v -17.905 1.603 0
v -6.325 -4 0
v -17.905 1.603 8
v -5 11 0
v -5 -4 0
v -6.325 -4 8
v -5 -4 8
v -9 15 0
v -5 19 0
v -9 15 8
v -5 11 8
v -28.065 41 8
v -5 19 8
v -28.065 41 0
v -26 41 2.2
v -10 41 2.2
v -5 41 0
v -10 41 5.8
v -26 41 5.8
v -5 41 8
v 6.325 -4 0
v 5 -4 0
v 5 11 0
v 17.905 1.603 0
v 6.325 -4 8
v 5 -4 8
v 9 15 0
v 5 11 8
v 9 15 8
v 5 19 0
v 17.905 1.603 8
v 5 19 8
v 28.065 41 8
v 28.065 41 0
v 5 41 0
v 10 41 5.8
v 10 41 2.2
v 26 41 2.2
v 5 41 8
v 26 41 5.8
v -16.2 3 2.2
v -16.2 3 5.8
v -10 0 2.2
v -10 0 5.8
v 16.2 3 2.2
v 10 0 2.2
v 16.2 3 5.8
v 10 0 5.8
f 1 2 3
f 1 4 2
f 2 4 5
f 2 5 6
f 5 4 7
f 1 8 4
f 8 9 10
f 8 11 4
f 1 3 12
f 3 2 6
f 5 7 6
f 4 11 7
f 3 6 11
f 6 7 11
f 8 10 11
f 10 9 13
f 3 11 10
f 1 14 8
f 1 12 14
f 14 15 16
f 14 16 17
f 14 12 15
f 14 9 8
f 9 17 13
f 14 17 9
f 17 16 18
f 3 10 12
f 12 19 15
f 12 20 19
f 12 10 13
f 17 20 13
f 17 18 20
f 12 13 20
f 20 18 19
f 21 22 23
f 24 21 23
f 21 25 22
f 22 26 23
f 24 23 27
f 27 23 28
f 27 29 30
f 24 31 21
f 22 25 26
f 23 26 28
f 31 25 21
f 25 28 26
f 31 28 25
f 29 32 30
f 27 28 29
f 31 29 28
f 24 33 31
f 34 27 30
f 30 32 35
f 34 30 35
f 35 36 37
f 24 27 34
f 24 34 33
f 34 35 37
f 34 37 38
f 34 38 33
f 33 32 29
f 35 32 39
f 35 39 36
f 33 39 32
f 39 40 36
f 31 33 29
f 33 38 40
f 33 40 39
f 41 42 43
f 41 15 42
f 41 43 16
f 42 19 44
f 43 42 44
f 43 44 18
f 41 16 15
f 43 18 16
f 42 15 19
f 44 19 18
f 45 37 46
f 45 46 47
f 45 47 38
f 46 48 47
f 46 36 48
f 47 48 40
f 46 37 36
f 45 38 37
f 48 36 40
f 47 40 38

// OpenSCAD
/*
 * Parametric OpenSCAD design for a caliper notched jaw cover.
 * Version: v0.07
 * Designed to exactly match the provided sketch:
 * - Straight measuring face with a V-notch
 * - Slanted outer face
 * - Slanted bottom tip
 */

/* [Version] */
version = "0.08";

/* [General Settings] */
// Which part to generate, laid flat for 3D printing
part = "both"; // [left_fixed, right_sliding, both, cutaway, split_halves]

/* [Caliper Metal Jaw Dimensions] */
// Total length of the metal jaw to cover
jaw_length = 41.0;
// Thickness of the metal jaw
//jaw_thickness = 3.65; // both - slightly more room
jaw_thickness = 3.6; // split halves

// Width of the metal jaw at the base (top, where it meets the caliper body)
jaw_base_width = 16;
// Width of the metal jaw where the main outer slant begins (X offset at the cutback)
jaw_tip_slant_width = 6.2;
// Distance from the tip (Y=0) where the main outer slant begins (Y offset of the cutback)
jaw_tip_slant_height = 3.0;

/* [Cover Dimensions] */
// Total thickness of the printed cover
cover_total_thickness = 8.0;
// Thickness of the plastic on the measuring (straight) face
wall_measuring_face = 5.0;
// Thickness of the plastic on the outer (slanted) faces (perpendicular thickness)
wall_outer_face = 2.0;
// Thickness of the plastic at the bottom tip
wall_tip = 4.0;



/* [Notch Dimensions] */
// Distance from the inner metal jaw tip to the center of the V-notch
notch_distance_from_tip = 15.0;
// Total vertical height of the V-notch opening
notch_height = 8.0;
// Depth of the V-notch into the plastic
notch_depth = 4.0;

/* [Bolt Holes] */
// Add optional M2 bolt holes to clamp the cover
enable_bolt_holes = false;
// Y position (height) of the top bolt holes
bolt_hole_top_y = 28.0;
// Y position (height) of the bottom bolt holes
bolt_hole_bottom_y = 5.0;
// Diameter of the M2 bolt shaft clearance hole
m2_hole_dia = 2.4;
// Flat-to-flat width of the M2 nut (4.0mm standard + 0.2mm clearance)
m2_nut_flat_to_flat = 4.2;
// Depth of the M2 nut recession
m2_nut_depth = 1.8;
// Diameter of the M2 bolt head recession
m2_head_dia = 4.2;
// Depth of the M2 bolt head recession
m2_head_depth = 2.0;
// Thickness of the sacrificial bridge layer to support the nut recession overhang (typically 1 layer height)
bridge_layer_thickness = 0.2;

// --- Implementation ---
$fn = 64;

// Calculate Z wall thickness to perfectly center the cavity
wall_z = (cover_total_thickness - jaw_thickness) / 2;

// --- Math for exact perpendicular offsets of the slanted outer walls ---
// Main Slant
m_main = (jaw_tip_slant_width - jaw_base_width) / (jaw_length - jaw_tip_slant_height);
b_main = -jaw_tip_slant_width - m_main * jaw_tip_slant_height;
function outer_main_x(y) = m_main * y + b_main - wall_outer_face * sqrt(1 + m_main*m_main);

// Bottom Cutback Slant
m_cut = -jaw_tip_slant_width / jaw_tip_slant_height;
b_cut = 0;
function outer_cut_x(y) = m_cut * y + b_cut - wall_outer_face * sqrt(1 + m_cut*m_cut);

// Intersection corner of the two perfectly offset outer walls
m_diff = m_main - m_cut;
y_int = abs(m_diff) > 0.0001 ? (b_cut - b_main + wall_outer_face * (sqrt(1 + m_main*m_main) - sqrt(1 + m_cut*m_cut))) / m_diff : jaw_tip_slant_height;
x_int = outer_main_x(y_int);


// Function to calculate the internal metal jaw width at any Y coordinate (linear interpolation along the main slant)
function get_jaw_width(y) = jaw_tip_slant_width + (jaw_base_width - jaw_tip_slant_width) * ((y - jaw_tip_slant_height) / (jaw_length - jaw_tip_slant_height));

// Functions to get exact X coordinates of inner/outer walls at any given Y
function get_inner_x(y) = (y > jaw_tip_slant_height) ? -get_jaw_width(y) : -jaw_tip_slant_width * (y / jaw_tip_slant_height);
function get_outer_x(y) = (y > y_int) ? outer_main_x(y) : outer_cut_x(y);

module jaw_cover_2d_profile() {
    // Outer Shell Polygon
    p_outer = [
        // Bottom right (tip of measuring face)
        [wall_measuring_face, -wall_tip],

        // Notch bottom
        [wall_measuring_face, notch_distance_from_tip - notch_height/2],
        // Notch inner point
        [wall_measuring_face - notch_depth, notch_distance_from_tip],
        // Notch top
        [wall_measuring_face, notch_distance_from_tip + notch_height/2],

        // Top right
        [wall_measuring_face, jaw_length],
        // Top left
        [outer_main_x(jaw_length), jaw_length],
        // Corner where the main slant meets the bottom cutback
        [x_int, y_int],
        // Bottom left (calculated to stay perfectly parallel to the bottom cutback cavity)
        [outer_cut_x(-wall_tip), -wall_tip]
    ];

    polygon(p_outer);
}

module cavity_2d_profile() {
    // Extended slightly in Y at the top for a clean boolean difference
    p_cavity = [
        [0, 0], // Bottom right "Tip"
        [-jaw_tip_slant_width, jaw_tip_slant_height], // Bottom left cutback point
        [-get_jaw_width(jaw_length + 1.0), jaw_length + 1.0], // Top left
        [0, jaw_length + 1.0] // Top right
    ];
    polygon(p_cavity);
}

module m2_bolt_hole(x, y) {
    translate([x, y, 0]) {
        // Main shaft
        // Starts above the nut bridge layer and ends below the bolt head bridge layer
        // This leaves exactly a 1-layer solid bridge at both ends for support-free printing
        translate([0, 0, m2_nut_depth + bridge_layer_thickness])
            cylinder(h = cover_total_thickness - m2_head_depth - m2_nut_depth - 2 * bridge_layer_thickness, d = m2_hole_dia, $fn=32);

        // Nut recession (bottom)
        translate([0, 0, -0.01])
            rotate([0, 0, 30])
                cylinder(h = m2_nut_depth + 0.01, d = m2_nut_flat_to_flat / cos(30), $fn=6);

        // Bolt head recession (top)
        translate([0, 0, cover_total_thickness - m2_head_depth])
            cylinder(h = m2_head_depth + 0.01, d = m2_head_dia, $fn=32);
    }
}

module single_jaw_cover() {
    difference() {
        // Main body extrusion
        linear_extrude(height = cover_total_thickness)
            jaw_cover_2d_profile();

        // Hollow cavity subtraction for the metal jaw
        translate([0, 0, wall_z])
            linear_extrude(height = jaw_thickness)
                cavity_2d_profile();

        // Bolt Holes
        if (enable_bolt_holes) {
            // --- Top Pair ---
            // Right hole (measuring face side)
            m2_bolt_hole(wall_measuring_face / 2, bolt_hole_top_y);
            // Left hole (outer slanted face side)
            m2_bolt_hole((get_inner_x(bolt_hole_top_y) + get_outer_x(bolt_hole_top_y)) / 2, bolt_hole_top_y);

            // --- Bottom Pair ---
            // Right hole (measuring face side)
            m2_bolt_hole(wall_measuring_face / 2, bolt_hole_bottom_y);
            // Left hole (outer slanted face side)
            m2_bolt_hole((get_inner_x(bolt_hole_bottom_y) + get_outer_x(bolt_hole_bottom_y)) / 2, bolt_hole_bottom_y);
        }
    }
}

// --- Render Logic ---
// The base model represents the Left (Fixed) Jaw.
// It is oriented flat on the XY plane for easy FDM 3D printing (bridging the cavity).

if (part == "both") {
    // Left fixed jaw
    translate([-10, 0, 0])
        single_jaw_cover();

    // Right sliding jaw (mirrored to face the left jaw)
    translate([10, 0, 0])
        mirror([1, 0, 0])
            single_jaw_cover();

} else if (part == "left_fixed") {
    single_jaw_cover();

} else if (part == "right_sliding") {
    mirror([1, 0, 0])
        single_jaw_cover();

} else if (part == "cutaway") {
    // Render an inspection view with the top half sliced off and the metal jaw rendered inside
    difference() {
        color("SteelBlue", 0.8)
            single_jaw_cover();

        // Cutaway bounding box bisecting the total thickness
        translate([-50, -50, cover_total_thickness / 2])
            cube([100, 100, 50]);
    }

} else if (part == "split_halves") {
    // Render the jaw split exactly down the middle so the two clam-shell halves can be printed

    // Bottom Half (contains nut recessions)
    intersection() {
        single_jaw_cover();
        translate([-50, -50, 0])
            cube([100, 100, cover_total_thickness / 2]);
    }

    // Top Half (contains bolt head recessions)
    // Flipped 180 degrees so the outer flat face sits perfectly on the build plate
    // and the internal cavity cutout faces UP
    translate([35, 0, 0])
        rotate([0, 180, 0])
        translate([0, 0, -cover_total_thickness])
        intersection() {
            single_jaw_cover();
            translate([-50, -50, cover_total_thickness / 2])
                cube([100, 100, cover_total_thickness / 2]);
        }
}
